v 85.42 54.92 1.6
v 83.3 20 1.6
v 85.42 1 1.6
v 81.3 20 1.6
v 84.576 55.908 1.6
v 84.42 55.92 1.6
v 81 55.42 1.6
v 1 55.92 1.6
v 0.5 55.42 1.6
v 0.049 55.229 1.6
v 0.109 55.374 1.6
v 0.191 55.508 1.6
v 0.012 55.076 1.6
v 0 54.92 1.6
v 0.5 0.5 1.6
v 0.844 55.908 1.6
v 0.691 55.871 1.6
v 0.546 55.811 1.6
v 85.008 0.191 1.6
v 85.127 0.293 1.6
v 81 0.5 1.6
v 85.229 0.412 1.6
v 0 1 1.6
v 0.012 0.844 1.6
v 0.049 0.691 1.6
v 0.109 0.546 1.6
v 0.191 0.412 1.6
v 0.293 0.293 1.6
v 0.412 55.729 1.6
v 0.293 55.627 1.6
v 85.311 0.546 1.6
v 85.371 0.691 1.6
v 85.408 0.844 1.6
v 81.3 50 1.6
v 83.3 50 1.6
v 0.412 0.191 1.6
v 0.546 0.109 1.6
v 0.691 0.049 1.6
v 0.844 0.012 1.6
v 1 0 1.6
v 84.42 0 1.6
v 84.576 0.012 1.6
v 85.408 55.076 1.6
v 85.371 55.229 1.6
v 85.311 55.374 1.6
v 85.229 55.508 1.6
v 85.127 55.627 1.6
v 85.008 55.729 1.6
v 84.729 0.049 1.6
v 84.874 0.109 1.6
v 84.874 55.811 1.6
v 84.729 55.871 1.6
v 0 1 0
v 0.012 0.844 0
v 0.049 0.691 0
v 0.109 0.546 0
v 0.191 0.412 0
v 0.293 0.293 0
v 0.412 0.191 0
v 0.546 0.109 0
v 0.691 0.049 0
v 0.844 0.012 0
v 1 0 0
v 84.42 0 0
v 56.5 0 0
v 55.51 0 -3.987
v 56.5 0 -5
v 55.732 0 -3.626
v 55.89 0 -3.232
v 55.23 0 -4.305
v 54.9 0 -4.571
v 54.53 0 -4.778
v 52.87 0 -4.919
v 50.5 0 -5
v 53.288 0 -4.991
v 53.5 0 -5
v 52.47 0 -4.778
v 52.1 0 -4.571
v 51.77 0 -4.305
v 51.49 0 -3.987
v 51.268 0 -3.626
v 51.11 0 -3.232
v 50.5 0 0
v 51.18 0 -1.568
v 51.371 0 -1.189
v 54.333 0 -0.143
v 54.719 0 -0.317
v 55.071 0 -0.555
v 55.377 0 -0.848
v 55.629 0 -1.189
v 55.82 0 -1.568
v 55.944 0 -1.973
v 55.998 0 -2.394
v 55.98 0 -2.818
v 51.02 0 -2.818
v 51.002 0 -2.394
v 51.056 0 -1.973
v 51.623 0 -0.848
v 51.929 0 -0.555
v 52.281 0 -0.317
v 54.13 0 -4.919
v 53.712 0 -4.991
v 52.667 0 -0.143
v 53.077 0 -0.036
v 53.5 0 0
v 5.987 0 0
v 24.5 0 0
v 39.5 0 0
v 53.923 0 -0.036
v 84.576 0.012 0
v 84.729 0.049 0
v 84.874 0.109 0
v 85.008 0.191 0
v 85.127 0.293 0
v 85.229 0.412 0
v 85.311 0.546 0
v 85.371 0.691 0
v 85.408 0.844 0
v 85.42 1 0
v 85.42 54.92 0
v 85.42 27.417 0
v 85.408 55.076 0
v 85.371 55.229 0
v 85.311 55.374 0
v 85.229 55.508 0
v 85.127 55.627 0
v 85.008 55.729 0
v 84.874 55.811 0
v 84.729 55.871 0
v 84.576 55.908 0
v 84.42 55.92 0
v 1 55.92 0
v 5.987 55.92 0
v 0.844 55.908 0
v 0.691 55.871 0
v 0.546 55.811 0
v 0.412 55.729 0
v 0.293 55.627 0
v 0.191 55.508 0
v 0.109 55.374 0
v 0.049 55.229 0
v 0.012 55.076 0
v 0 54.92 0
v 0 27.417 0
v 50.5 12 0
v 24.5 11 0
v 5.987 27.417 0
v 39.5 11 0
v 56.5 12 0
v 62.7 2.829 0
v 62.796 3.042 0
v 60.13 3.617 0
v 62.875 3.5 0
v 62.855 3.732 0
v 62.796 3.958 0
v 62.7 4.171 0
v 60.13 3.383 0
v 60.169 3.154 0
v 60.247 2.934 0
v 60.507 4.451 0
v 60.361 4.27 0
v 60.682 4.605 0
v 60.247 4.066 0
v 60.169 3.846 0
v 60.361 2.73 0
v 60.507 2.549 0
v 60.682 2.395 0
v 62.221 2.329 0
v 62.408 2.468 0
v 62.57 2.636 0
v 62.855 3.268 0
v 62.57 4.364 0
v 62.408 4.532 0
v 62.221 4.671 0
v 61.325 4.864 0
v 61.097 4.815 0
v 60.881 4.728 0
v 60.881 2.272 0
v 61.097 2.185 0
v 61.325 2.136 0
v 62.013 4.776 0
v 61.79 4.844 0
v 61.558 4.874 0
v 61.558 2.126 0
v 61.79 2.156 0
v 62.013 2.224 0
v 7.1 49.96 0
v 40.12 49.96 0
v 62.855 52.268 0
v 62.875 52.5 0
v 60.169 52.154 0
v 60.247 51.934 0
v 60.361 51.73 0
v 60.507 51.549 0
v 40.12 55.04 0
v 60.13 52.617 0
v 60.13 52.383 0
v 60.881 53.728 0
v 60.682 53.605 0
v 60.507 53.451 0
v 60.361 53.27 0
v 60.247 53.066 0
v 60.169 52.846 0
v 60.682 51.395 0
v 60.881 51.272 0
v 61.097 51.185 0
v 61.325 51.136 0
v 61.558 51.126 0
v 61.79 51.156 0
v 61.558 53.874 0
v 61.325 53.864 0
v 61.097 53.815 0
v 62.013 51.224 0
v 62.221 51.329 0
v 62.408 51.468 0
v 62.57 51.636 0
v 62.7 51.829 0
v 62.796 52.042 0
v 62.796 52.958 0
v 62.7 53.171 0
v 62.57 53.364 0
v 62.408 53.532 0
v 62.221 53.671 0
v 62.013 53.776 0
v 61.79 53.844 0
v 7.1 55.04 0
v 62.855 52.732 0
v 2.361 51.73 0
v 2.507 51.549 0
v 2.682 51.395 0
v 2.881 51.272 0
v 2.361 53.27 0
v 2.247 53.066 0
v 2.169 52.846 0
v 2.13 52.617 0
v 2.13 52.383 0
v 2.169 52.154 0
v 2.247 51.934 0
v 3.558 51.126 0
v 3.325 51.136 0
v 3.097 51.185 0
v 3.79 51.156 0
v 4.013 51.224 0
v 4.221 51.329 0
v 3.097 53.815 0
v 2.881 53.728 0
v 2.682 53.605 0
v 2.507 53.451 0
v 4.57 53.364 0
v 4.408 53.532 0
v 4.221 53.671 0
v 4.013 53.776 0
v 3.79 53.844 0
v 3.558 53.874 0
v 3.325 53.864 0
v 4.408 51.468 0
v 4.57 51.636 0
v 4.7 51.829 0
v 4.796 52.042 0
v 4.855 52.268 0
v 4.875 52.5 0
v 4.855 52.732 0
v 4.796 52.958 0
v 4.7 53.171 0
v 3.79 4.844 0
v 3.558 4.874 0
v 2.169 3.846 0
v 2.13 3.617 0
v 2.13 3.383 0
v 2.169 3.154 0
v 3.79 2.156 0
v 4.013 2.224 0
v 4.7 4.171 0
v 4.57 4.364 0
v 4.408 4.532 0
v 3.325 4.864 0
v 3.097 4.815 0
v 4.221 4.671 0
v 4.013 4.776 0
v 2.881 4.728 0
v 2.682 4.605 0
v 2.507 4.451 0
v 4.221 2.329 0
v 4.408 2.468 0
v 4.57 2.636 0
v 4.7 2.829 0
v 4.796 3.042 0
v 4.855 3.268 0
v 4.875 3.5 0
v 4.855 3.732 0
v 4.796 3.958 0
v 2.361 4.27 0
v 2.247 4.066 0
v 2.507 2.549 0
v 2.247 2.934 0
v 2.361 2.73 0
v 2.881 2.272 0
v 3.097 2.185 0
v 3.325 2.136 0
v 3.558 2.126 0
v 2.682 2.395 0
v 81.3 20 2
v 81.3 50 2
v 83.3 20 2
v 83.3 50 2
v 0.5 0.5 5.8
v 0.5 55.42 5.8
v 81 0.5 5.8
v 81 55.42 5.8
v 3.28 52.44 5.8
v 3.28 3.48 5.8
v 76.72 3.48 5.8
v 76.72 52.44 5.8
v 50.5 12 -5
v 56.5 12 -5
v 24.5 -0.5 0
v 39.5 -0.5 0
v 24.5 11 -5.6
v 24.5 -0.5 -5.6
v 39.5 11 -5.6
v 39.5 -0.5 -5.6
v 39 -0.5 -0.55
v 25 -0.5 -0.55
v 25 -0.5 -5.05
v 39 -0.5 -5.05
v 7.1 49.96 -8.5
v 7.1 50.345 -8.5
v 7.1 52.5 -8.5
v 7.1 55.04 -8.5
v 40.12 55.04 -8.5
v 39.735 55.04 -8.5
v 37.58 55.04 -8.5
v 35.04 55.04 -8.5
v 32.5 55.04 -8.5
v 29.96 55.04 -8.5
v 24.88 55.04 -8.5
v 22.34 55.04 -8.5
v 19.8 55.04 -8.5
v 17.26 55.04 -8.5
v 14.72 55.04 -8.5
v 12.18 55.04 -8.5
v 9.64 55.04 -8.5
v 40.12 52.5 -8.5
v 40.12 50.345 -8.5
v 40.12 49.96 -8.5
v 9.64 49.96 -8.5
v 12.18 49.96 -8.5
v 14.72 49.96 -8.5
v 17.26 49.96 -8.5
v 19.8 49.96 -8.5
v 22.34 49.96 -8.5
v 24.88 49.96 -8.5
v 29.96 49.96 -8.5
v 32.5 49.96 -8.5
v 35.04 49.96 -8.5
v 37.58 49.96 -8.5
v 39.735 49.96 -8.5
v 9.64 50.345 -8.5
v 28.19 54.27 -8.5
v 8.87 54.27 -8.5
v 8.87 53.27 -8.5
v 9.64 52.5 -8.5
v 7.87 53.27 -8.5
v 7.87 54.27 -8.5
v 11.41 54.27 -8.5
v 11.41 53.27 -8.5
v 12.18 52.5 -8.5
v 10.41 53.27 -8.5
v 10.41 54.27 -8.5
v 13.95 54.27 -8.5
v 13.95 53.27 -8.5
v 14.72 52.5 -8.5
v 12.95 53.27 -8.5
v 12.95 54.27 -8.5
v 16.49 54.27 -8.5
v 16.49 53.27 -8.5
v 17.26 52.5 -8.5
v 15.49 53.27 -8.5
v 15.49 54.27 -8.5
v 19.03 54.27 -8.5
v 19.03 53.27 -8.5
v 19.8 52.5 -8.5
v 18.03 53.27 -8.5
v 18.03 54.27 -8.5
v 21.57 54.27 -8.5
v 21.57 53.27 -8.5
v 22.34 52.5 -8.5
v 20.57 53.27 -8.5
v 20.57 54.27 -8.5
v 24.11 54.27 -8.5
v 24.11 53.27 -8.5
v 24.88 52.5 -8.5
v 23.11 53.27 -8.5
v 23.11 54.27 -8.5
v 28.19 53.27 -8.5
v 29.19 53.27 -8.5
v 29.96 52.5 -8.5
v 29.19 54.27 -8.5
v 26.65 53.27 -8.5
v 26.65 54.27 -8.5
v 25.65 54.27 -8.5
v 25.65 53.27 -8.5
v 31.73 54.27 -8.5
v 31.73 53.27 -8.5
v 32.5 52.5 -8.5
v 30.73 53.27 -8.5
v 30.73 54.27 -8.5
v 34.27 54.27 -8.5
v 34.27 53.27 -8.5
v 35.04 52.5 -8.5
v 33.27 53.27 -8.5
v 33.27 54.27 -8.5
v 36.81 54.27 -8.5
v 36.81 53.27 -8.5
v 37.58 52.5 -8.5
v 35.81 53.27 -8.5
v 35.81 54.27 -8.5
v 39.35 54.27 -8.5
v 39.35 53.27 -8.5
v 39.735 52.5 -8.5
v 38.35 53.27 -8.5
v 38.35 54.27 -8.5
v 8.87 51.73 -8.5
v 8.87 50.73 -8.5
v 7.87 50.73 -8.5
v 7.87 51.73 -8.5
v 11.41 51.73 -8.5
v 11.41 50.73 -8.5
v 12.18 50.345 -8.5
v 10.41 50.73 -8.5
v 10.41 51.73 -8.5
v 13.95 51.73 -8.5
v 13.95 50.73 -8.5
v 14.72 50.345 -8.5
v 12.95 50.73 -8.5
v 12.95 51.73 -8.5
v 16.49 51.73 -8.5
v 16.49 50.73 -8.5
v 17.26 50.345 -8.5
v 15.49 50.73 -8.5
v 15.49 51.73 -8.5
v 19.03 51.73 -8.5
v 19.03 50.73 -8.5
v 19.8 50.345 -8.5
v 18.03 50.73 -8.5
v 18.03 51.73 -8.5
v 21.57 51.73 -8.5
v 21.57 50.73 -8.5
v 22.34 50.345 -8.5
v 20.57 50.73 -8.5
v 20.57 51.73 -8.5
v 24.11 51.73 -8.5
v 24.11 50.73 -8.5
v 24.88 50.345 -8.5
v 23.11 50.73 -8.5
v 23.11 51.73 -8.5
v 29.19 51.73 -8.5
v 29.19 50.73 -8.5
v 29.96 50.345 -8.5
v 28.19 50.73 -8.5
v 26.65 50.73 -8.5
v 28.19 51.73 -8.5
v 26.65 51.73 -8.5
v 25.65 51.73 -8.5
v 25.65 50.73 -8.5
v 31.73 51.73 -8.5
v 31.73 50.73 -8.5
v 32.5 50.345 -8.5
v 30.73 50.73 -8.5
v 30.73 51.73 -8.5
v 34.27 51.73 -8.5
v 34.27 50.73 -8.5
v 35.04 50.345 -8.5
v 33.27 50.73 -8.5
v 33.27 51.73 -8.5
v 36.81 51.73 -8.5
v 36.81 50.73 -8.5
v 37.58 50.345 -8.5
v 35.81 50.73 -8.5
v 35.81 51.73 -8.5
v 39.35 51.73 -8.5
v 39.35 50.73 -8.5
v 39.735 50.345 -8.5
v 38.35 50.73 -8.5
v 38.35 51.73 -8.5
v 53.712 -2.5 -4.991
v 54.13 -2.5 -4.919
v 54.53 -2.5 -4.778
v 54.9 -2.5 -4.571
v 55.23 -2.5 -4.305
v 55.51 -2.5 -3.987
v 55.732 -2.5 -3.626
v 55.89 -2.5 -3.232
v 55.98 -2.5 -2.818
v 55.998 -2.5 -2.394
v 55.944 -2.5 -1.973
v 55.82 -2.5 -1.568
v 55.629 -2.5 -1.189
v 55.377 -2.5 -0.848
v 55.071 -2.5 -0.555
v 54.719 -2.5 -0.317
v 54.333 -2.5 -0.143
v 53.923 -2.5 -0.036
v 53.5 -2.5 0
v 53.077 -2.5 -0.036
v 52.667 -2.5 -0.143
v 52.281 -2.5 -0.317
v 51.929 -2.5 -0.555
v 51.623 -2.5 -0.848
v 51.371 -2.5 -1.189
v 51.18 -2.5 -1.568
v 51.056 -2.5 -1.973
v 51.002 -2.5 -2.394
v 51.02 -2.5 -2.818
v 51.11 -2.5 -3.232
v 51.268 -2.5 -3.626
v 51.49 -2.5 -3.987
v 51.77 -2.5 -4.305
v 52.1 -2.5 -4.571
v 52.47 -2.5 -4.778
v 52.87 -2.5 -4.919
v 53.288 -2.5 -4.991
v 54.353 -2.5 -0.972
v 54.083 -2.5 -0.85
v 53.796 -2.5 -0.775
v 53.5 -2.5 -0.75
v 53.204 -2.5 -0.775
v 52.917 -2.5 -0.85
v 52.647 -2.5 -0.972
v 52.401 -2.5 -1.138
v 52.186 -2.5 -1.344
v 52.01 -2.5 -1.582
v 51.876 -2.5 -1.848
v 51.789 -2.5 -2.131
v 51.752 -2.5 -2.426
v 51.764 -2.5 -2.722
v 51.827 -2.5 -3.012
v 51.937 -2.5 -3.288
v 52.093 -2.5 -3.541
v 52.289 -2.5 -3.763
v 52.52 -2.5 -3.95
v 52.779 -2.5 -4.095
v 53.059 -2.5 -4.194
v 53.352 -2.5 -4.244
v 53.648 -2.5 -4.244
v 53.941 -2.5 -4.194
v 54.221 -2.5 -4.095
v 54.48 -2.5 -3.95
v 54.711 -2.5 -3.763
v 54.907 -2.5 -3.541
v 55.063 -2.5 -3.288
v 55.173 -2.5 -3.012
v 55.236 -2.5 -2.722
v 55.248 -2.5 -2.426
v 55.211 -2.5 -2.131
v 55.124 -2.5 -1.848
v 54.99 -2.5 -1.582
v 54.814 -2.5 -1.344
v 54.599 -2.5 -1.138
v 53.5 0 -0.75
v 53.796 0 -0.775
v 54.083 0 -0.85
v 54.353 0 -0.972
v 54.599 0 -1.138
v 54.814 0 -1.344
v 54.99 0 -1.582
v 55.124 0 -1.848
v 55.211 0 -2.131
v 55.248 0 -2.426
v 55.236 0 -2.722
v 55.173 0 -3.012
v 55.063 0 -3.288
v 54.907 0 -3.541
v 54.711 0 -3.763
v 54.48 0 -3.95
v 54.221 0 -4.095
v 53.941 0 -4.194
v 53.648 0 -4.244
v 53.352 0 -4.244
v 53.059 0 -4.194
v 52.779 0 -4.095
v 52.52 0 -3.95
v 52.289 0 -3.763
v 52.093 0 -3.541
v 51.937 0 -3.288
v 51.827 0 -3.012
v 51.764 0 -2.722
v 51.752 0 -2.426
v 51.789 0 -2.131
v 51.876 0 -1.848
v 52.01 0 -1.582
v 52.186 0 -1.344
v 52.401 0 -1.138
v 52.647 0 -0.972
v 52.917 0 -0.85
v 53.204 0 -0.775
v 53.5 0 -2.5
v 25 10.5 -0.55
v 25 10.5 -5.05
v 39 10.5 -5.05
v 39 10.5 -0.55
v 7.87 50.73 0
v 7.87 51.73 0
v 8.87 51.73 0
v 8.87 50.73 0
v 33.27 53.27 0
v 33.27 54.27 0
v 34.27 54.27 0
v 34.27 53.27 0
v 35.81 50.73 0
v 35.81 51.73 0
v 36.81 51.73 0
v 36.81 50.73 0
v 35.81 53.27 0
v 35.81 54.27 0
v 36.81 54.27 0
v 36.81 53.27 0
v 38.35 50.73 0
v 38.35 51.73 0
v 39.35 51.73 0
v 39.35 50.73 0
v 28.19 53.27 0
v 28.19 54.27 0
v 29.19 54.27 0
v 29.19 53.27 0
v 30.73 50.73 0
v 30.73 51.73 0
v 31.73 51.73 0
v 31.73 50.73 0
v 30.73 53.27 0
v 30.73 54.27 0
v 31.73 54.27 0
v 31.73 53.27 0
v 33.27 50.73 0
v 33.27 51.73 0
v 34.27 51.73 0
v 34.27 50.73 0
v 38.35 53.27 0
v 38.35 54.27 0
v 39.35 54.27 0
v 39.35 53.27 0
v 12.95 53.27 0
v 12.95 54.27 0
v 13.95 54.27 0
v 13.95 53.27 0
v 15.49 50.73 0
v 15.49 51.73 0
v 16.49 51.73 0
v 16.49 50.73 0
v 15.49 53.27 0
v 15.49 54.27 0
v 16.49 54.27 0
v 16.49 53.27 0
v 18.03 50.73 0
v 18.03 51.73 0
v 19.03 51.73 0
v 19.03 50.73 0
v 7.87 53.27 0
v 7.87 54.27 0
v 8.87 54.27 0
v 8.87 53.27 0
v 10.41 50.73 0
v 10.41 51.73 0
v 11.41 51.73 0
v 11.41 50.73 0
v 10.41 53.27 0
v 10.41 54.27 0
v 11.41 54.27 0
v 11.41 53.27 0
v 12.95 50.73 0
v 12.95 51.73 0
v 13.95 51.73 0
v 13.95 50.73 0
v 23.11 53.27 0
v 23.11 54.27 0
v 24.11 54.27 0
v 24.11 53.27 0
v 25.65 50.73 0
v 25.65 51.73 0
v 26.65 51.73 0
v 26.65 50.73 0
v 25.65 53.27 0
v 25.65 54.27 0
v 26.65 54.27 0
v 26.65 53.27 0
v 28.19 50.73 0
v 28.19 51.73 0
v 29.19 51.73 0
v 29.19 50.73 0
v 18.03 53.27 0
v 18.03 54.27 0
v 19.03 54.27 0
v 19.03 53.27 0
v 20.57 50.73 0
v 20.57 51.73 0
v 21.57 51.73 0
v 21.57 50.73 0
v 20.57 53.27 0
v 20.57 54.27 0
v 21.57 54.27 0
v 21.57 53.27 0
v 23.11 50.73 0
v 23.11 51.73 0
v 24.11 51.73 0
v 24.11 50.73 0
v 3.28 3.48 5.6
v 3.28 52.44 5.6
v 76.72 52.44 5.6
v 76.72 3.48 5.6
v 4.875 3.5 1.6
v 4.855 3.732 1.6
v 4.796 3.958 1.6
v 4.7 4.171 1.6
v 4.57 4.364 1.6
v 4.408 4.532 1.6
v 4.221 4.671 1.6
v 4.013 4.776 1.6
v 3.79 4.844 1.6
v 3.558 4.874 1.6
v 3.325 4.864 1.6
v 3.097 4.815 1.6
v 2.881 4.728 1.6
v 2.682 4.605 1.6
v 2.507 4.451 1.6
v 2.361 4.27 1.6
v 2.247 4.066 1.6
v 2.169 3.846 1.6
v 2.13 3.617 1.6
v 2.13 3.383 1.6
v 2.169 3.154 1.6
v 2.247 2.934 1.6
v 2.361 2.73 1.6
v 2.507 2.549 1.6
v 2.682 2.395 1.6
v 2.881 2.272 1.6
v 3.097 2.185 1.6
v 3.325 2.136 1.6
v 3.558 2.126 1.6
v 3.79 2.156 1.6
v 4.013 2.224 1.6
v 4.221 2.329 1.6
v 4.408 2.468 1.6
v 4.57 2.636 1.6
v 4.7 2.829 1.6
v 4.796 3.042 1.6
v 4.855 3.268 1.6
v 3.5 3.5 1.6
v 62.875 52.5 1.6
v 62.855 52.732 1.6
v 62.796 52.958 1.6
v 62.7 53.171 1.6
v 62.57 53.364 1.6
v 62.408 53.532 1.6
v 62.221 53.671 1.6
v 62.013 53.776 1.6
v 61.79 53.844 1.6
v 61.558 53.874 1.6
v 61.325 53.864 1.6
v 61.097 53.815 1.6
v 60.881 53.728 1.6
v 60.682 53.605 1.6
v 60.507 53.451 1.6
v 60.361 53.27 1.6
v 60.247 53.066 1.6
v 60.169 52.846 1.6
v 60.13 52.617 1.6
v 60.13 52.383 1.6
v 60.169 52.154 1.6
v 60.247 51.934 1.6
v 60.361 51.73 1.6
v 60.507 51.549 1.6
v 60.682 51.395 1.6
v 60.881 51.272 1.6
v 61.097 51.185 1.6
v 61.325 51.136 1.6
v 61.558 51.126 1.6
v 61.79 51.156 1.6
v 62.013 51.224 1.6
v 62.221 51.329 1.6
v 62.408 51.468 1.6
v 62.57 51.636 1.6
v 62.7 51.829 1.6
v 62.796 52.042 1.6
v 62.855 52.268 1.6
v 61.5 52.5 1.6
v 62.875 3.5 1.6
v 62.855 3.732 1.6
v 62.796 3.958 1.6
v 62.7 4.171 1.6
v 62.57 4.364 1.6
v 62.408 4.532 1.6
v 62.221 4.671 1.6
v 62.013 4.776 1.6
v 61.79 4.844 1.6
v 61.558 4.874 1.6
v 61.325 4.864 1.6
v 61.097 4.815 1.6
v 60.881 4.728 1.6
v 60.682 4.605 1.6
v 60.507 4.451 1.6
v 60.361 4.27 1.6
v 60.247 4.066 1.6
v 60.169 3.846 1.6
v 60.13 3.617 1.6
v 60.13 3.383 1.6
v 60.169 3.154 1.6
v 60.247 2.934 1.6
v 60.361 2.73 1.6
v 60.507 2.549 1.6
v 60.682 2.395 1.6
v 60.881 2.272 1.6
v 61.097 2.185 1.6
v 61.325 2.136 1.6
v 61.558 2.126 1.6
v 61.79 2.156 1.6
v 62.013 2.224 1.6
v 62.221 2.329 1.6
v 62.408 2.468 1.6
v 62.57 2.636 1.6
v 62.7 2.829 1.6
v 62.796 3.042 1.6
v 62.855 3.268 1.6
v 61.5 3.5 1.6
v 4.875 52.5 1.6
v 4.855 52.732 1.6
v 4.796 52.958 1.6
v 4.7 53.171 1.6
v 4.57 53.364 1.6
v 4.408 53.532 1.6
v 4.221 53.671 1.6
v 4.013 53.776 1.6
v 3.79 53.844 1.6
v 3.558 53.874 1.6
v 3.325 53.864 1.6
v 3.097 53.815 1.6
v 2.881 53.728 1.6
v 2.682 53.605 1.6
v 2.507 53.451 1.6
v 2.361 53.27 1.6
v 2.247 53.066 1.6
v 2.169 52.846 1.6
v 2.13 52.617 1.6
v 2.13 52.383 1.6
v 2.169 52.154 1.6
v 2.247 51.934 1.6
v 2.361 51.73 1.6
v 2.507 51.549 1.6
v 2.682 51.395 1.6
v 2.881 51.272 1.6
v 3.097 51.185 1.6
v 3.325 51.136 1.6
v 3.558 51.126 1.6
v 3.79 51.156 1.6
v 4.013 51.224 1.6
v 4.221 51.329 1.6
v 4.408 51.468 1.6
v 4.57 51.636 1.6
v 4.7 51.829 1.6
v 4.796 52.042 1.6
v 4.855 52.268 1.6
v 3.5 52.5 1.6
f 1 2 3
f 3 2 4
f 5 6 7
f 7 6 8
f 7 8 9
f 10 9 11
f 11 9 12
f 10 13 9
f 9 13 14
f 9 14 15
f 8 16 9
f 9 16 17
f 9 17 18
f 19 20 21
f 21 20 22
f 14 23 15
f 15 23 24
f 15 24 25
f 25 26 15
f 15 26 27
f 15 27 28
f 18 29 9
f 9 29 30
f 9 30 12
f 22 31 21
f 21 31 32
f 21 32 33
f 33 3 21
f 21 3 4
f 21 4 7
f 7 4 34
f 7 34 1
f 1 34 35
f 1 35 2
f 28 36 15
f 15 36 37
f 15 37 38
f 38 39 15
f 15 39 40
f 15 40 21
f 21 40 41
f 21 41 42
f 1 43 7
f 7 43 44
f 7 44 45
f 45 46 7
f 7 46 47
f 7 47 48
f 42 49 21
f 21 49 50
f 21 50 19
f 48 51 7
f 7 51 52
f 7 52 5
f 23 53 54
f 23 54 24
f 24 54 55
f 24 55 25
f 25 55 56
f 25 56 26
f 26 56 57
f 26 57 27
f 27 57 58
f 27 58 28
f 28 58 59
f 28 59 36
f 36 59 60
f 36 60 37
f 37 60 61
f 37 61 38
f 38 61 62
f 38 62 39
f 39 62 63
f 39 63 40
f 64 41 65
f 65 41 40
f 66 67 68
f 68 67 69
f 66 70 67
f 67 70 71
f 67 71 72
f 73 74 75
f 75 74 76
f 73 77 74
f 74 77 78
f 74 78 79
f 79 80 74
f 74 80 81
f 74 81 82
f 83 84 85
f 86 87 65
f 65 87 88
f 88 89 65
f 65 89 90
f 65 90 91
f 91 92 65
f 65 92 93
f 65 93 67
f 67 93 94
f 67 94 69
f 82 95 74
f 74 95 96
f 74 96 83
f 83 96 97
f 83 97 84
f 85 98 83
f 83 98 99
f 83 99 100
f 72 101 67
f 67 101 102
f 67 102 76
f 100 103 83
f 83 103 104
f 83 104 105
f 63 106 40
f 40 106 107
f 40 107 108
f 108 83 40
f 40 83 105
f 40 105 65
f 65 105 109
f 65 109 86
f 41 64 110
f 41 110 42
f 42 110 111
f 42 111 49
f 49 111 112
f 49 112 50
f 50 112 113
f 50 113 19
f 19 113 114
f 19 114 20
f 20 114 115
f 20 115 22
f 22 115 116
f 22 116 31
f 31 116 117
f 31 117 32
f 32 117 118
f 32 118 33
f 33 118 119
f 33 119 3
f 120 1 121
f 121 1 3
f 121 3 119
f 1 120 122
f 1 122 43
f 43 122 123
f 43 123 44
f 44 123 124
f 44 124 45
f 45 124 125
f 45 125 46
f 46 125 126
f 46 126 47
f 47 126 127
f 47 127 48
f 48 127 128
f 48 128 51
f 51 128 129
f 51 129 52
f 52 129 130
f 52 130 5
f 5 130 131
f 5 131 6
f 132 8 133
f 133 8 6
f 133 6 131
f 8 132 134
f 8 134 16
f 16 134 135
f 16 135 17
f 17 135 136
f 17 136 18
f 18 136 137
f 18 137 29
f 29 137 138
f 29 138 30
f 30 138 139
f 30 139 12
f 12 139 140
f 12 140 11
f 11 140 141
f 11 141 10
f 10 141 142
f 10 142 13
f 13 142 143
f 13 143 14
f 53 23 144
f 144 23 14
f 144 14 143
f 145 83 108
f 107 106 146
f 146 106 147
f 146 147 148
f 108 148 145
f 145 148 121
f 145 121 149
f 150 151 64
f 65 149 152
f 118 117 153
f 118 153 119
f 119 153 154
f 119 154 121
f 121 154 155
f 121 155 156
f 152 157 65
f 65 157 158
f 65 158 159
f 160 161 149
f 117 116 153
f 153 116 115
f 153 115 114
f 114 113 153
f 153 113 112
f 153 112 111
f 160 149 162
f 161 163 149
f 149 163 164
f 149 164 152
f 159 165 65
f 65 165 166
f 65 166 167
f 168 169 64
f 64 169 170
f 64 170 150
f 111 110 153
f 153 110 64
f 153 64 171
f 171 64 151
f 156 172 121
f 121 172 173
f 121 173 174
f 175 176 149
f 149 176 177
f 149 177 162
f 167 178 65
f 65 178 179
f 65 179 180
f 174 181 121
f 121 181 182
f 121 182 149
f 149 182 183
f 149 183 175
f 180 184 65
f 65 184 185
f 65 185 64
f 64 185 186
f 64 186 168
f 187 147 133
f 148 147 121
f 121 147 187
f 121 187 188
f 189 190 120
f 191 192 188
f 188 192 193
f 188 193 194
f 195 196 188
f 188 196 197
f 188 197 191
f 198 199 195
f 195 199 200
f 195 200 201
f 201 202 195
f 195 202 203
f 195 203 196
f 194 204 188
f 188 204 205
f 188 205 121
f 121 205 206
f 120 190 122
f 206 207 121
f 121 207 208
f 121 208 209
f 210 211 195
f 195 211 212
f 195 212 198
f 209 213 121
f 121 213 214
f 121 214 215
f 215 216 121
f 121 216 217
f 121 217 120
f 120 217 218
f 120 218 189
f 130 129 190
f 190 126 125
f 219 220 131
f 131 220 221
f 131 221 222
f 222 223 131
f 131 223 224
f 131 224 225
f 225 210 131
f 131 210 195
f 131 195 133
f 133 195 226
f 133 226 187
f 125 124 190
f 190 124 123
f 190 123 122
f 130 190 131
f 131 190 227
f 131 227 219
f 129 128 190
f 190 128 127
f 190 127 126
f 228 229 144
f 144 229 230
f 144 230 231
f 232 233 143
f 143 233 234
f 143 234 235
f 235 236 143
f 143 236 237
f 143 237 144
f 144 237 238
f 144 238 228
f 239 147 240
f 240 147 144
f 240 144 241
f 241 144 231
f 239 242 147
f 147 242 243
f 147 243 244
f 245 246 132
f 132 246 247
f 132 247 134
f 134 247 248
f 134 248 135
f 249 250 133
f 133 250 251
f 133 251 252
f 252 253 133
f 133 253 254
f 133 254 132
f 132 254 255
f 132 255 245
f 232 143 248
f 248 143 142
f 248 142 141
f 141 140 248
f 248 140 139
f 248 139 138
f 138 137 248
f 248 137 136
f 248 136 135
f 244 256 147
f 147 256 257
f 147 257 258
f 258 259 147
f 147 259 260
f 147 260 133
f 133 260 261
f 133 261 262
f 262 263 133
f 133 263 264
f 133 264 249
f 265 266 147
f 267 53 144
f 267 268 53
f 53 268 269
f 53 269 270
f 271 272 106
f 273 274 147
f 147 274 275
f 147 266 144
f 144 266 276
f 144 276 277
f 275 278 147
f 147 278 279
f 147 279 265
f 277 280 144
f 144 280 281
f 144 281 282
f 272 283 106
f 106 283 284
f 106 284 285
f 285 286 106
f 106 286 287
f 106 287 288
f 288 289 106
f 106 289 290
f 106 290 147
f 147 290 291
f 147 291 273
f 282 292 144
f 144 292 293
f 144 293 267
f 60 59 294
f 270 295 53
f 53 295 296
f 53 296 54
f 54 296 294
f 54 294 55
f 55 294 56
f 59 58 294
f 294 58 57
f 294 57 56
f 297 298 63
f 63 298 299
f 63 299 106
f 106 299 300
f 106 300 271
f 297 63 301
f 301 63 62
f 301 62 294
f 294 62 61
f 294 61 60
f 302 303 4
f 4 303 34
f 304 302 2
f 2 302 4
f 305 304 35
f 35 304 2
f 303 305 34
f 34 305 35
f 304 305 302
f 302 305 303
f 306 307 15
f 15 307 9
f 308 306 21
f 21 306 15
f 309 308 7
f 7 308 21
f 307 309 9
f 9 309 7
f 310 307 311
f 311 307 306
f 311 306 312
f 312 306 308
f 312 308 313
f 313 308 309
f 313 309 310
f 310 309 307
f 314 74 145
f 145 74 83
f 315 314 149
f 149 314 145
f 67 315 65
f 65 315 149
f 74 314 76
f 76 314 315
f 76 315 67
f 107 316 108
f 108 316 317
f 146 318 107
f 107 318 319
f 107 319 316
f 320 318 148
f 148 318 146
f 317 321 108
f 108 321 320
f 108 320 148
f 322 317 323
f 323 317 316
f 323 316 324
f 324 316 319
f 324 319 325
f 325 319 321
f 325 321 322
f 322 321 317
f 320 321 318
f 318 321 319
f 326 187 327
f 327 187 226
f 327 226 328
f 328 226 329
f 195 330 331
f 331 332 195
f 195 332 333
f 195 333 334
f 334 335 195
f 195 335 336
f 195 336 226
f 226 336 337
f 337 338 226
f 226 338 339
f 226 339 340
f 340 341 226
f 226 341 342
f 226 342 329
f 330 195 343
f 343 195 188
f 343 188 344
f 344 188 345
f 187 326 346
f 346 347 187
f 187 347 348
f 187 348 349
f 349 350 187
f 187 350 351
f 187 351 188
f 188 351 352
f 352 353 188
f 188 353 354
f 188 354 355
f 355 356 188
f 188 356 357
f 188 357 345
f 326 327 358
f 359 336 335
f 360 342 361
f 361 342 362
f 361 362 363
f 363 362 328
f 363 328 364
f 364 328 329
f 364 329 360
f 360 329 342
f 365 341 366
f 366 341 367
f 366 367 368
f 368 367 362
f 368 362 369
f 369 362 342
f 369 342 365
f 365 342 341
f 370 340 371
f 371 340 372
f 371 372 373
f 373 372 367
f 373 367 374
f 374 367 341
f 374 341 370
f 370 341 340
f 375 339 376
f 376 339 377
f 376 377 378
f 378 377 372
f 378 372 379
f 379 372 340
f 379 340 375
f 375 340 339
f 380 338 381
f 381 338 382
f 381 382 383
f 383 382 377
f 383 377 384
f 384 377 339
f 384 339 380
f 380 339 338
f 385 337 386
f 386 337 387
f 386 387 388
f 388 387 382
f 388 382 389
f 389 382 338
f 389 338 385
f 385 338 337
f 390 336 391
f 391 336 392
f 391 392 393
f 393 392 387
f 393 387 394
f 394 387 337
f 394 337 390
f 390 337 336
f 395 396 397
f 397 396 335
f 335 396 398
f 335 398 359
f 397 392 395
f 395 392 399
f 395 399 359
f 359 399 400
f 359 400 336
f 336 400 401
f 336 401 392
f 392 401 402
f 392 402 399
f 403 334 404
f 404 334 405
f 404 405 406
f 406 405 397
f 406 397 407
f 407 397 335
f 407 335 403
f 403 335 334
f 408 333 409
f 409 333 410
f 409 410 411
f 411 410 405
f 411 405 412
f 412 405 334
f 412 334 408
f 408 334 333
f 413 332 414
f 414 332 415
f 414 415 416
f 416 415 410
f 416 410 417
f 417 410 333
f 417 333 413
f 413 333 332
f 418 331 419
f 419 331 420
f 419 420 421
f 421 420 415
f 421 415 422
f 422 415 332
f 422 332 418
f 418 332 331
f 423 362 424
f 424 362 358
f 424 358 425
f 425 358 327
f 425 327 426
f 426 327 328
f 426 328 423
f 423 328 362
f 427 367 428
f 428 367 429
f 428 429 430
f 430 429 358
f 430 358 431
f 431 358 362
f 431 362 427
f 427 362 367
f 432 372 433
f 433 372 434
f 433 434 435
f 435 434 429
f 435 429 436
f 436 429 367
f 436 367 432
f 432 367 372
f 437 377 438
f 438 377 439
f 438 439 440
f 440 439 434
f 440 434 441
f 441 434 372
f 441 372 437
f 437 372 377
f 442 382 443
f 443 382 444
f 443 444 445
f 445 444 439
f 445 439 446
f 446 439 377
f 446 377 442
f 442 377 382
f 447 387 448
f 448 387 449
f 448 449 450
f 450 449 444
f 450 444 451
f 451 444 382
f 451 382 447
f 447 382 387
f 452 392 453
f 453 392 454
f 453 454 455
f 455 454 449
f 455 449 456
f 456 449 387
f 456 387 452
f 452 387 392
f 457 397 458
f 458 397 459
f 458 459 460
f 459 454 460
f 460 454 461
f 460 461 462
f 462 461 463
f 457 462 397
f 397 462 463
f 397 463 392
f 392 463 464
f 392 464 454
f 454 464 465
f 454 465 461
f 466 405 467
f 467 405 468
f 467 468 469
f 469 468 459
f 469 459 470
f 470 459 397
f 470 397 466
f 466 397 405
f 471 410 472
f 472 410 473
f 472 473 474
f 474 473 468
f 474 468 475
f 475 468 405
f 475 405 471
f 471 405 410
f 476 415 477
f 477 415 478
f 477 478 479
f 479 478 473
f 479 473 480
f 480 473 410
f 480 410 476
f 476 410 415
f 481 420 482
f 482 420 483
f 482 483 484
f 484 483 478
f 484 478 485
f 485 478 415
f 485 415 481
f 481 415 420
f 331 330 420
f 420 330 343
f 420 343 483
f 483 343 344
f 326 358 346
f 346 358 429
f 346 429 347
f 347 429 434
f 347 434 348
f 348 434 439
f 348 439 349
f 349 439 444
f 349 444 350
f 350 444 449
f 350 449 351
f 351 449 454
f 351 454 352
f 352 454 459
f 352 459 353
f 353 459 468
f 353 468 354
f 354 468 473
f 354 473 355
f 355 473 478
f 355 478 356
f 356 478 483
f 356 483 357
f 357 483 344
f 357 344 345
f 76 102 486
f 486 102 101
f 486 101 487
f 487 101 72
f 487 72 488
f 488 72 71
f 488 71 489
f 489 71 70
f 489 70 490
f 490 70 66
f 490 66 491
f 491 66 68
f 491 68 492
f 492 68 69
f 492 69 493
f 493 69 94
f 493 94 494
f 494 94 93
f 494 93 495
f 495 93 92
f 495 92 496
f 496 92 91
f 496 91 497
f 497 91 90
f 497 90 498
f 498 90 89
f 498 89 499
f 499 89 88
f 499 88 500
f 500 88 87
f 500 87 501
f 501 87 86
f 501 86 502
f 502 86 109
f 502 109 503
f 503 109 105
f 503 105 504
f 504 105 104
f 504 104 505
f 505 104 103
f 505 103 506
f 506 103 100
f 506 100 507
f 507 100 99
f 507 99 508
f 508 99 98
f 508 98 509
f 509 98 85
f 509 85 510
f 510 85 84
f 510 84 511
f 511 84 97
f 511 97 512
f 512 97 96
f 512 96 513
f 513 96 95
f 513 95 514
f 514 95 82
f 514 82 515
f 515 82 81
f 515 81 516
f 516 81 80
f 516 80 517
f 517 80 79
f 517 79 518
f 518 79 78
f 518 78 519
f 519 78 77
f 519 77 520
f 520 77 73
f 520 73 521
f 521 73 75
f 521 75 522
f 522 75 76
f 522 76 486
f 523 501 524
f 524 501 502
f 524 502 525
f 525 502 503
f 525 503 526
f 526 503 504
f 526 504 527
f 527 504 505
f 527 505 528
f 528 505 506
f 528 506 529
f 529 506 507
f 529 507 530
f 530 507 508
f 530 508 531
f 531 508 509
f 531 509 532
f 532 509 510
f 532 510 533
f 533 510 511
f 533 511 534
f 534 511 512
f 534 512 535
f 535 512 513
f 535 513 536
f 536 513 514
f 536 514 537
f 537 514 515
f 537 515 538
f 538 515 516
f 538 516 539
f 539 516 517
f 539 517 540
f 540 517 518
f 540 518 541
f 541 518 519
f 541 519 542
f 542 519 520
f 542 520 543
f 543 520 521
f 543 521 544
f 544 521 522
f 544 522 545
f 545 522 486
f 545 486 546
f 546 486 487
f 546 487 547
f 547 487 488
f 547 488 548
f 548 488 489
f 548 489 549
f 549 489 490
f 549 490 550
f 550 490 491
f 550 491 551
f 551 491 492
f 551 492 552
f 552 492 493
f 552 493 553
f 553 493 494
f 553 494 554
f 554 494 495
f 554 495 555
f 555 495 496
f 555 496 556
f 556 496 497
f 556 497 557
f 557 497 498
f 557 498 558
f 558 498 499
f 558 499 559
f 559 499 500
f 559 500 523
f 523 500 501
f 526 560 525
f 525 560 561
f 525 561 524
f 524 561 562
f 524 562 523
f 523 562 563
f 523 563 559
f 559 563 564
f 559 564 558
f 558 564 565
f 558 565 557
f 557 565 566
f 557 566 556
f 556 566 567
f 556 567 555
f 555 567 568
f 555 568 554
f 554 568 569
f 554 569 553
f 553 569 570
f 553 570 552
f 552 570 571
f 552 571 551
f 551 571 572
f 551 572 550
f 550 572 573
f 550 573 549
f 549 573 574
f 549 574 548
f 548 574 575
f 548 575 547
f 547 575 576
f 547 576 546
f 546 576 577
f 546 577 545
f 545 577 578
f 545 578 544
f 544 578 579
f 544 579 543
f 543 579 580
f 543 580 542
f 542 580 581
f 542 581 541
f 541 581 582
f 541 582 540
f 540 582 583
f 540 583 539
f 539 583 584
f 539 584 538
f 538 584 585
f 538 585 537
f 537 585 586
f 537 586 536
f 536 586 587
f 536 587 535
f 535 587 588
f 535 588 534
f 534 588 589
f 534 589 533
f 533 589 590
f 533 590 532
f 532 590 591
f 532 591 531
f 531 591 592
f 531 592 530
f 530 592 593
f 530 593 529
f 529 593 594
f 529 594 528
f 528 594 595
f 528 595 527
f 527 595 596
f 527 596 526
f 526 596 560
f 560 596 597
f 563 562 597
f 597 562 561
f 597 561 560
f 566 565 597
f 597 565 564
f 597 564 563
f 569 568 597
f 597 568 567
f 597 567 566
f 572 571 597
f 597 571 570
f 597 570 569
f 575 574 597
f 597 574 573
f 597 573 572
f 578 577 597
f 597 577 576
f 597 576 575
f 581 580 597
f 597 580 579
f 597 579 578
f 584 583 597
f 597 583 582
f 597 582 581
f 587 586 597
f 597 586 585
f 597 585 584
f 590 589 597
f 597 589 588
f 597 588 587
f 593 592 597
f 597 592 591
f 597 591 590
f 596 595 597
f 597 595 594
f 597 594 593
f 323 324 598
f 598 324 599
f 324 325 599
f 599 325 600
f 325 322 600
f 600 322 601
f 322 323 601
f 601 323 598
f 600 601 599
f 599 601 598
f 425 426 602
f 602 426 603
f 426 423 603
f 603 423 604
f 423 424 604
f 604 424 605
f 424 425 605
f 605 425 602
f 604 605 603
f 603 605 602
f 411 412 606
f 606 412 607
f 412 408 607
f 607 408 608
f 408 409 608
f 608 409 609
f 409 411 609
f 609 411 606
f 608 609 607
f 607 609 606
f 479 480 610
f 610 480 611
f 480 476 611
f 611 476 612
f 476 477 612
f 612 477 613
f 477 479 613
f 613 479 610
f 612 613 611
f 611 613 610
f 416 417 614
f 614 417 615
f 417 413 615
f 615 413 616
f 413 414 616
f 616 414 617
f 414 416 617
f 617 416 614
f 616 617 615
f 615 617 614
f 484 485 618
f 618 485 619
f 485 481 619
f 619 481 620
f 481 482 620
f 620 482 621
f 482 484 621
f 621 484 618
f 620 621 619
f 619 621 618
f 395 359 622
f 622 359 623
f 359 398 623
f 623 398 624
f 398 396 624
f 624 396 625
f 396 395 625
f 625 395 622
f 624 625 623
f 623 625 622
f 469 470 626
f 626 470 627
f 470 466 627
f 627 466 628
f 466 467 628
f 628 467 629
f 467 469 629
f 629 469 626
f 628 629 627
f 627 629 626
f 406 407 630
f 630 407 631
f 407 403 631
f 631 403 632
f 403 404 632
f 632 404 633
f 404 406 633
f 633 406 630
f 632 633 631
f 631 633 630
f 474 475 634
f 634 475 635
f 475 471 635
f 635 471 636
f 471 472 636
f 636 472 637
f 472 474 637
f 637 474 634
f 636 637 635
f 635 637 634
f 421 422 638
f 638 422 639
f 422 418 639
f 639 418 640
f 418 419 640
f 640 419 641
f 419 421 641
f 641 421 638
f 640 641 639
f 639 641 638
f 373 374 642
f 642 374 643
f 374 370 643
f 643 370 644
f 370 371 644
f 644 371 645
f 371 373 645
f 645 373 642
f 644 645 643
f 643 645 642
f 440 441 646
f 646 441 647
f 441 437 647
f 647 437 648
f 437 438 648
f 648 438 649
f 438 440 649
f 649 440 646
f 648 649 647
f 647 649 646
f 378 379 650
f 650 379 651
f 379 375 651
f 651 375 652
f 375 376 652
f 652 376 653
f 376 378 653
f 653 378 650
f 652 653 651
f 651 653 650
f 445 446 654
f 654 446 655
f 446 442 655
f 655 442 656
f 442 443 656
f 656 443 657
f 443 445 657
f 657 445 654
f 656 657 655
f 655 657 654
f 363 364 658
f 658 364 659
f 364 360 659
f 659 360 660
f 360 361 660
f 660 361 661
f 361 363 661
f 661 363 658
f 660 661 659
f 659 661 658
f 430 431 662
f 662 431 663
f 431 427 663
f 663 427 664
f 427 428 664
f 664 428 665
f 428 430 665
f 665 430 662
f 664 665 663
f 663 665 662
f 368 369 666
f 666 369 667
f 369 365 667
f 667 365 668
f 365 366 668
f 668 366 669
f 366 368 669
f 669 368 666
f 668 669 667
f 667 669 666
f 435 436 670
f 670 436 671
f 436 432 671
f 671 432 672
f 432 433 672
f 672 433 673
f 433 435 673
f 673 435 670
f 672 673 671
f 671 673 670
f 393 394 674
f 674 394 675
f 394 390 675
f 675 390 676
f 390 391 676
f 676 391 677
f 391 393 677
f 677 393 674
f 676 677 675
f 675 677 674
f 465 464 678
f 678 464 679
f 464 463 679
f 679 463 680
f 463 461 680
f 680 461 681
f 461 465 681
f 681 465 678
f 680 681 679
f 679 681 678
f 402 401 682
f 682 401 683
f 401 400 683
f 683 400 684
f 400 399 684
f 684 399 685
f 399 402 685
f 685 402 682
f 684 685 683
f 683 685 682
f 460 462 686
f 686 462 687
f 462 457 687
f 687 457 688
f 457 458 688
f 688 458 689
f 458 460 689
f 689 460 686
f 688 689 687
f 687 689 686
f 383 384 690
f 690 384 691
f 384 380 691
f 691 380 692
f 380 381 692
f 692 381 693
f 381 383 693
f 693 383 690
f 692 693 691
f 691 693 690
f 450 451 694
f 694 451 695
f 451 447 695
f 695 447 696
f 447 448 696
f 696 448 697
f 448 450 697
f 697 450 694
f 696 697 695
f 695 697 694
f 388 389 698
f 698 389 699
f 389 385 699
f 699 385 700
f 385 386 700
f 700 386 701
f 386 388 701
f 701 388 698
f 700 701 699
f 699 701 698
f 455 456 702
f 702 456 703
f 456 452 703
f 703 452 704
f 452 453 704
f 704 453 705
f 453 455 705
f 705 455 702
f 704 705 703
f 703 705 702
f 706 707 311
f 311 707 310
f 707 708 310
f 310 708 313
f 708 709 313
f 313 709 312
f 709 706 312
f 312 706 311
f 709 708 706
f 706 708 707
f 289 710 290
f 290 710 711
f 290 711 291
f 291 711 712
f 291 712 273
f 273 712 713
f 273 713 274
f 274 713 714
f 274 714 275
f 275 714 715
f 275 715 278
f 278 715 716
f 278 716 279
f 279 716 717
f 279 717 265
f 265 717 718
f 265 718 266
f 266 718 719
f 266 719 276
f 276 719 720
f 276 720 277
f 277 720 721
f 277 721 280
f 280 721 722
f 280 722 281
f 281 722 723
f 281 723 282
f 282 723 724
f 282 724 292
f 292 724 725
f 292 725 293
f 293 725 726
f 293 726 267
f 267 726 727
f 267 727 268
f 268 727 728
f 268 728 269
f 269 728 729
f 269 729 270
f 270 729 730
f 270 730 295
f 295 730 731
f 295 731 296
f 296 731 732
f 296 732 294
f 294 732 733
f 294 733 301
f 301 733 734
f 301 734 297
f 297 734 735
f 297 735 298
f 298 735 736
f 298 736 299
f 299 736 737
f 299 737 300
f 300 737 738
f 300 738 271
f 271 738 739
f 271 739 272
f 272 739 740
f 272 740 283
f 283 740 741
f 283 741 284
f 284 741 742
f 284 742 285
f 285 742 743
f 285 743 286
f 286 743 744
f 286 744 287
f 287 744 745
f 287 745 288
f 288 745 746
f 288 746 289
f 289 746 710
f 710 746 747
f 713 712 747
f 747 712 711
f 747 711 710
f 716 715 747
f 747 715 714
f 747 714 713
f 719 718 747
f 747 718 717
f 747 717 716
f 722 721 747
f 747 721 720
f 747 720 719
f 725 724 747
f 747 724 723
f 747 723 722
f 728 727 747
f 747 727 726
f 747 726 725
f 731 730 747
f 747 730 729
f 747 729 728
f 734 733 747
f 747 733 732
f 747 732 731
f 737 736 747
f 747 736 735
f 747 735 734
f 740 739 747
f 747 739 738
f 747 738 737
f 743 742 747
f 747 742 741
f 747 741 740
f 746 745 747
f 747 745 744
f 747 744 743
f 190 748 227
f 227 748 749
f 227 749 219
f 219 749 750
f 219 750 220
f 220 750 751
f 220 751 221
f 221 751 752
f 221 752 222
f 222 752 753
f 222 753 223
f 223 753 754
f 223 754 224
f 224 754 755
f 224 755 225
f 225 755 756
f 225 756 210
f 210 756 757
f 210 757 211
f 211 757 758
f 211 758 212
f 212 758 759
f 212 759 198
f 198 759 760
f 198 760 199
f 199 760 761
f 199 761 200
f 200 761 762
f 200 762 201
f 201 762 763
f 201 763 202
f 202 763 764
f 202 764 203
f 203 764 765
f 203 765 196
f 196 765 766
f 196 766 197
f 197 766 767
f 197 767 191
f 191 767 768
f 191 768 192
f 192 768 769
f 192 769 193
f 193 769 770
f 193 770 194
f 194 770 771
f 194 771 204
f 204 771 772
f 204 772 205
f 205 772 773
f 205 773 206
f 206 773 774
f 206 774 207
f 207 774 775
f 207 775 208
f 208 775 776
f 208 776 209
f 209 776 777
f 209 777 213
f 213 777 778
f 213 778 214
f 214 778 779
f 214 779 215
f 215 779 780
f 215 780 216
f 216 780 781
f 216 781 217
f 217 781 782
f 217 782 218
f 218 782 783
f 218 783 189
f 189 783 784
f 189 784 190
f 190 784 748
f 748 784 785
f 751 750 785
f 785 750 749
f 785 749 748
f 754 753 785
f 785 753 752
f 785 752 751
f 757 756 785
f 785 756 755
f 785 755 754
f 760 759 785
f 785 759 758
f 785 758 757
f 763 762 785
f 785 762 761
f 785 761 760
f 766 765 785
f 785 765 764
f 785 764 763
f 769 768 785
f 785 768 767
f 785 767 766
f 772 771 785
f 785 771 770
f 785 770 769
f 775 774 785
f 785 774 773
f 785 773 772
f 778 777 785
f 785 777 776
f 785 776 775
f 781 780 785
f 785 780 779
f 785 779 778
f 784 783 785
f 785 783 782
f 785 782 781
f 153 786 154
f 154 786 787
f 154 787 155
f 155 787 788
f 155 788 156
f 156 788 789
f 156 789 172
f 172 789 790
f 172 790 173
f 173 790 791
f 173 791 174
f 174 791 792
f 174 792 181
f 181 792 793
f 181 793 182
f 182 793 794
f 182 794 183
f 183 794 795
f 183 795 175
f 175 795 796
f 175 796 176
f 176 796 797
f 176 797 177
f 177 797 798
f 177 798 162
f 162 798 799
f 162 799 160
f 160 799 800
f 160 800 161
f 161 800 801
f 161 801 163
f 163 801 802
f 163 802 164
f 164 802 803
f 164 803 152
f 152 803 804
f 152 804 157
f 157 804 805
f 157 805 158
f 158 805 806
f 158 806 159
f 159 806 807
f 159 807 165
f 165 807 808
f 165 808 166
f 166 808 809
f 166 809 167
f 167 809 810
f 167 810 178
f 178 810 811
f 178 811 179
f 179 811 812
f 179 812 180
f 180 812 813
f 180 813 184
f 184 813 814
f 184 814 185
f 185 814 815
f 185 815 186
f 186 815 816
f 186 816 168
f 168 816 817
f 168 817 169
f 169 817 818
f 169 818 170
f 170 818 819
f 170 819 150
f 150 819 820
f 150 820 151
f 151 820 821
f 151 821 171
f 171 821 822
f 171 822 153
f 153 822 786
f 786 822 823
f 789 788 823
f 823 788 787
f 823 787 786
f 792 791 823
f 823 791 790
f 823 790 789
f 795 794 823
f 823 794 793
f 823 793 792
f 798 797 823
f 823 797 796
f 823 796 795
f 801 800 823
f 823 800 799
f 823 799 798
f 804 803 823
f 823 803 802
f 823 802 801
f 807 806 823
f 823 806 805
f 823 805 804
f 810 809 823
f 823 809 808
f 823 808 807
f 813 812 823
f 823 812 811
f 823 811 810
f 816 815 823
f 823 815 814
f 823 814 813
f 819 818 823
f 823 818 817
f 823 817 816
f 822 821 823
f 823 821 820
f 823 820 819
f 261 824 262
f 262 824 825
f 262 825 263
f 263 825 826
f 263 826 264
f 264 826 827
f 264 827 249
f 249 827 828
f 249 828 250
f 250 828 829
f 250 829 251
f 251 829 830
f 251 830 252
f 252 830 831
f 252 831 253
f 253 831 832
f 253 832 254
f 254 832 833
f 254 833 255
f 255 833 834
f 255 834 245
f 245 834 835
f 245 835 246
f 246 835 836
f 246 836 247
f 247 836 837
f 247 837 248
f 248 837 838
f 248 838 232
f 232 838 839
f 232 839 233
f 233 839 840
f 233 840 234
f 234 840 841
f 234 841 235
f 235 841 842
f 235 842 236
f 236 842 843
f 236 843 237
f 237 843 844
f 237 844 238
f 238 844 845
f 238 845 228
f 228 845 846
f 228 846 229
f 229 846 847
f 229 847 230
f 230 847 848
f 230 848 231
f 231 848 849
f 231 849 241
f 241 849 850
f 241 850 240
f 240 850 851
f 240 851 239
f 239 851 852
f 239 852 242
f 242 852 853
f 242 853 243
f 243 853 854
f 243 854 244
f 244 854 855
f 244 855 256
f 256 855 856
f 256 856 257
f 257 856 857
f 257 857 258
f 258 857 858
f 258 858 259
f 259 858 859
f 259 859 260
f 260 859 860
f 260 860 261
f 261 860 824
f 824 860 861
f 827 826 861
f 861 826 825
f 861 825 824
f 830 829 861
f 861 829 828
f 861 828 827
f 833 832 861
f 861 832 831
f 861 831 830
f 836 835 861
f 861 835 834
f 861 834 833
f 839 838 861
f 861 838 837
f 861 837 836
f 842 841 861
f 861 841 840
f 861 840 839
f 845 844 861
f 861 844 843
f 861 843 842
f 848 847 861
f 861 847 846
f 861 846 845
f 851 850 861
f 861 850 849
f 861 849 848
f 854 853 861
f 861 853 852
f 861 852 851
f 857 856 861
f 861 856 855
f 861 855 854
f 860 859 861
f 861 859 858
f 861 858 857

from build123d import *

# Parameters (mm, degrees)
PCB_DEPTH                       = 1.6
SKETCH2_W                       = 2
SKETCH2_H                       = 30
BODY00_DEPTH                    = 0.4
SKETCH3_W                       = 80.5
SKETCH3_H                       = 54.92
BODY01_DEPTH                    = 4.2
SKETCH4_W                       = 6
SKETCH4_H                       = 12
UNDER00_DEPTH                   = 5
SKETCH5_W                       = 15
SKETCH5_H                       = 11.5
UNDER01_DEPTH                   = 5.6
SKETCH6_W                       = 33.02
SKETCH6_H                       = 5.08
UNDER02_DEPTH                   = 8.5
SKETCH7_R                       = 2.5
SIDE0_AUDIO_JACK_NOSE_DEPTH     = 2.5
SKETCH8_R                       = 1.75
SIDEBORE0_AUDIO_JACK_NOSE_DEPTH = 2.5
SKETCH9_W                       = 14
SKETCH9_H                       = 4.5
CUT00_DEPTH                     = 11
SKETCH10_W                      = 1
SKETCH10_H                      = 1
CUT01_DEPTH                     = 8.5
SKETCH11_W                      = 73.44
SKETCH11_H                      = 48.96
CUT02_DEPTH                     = 0.2
SKETCH12_R                      = 1.375
HOLES_DEPTH                     = 1.6


with BuildPart() as part:
    # Sketch1 → PCB (new body)
    with BuildSketch(Plane.XY):
        with BuildLine():
            Line((1, 0), (84.42, 0))
            ThreePointArc((84.42, 0), (85.127106781, 0.292893219), (85.42, 1))
            Line((85.42, 1), (85.42, 54.92))
            ThreePointArc((85.42, 54.92), (85.127106781, 55.627106781), (84.42, 55.92))
            Line((84.42, 55.92), (1, 55.92))
            ThreePointArc((1, 55.92), (0.292893219, 55.627106781), (0, 54.92))
            Line((0, 54.92), (0, 1))
            ThreePointArc((0, 1), (0.292893219, 0.292893219), (1, 0))
        make_face()
    extrude(amount=PCB_DEPTH)

    # Sketch2 → Body00 (add)
    with BuildSketch(Plane.XY.offset(1.6)):
        with Locations((82.3, 35)):
            Rectangle(SKETCH2_W, SKETCH2_H)
    extrude(amount=BODY00_DEPTH)

    # Sketch3 → Body01 (add)
    with BuildSketch(Plane.XY.offset(1.6)):
        with Locations((40.75, 27.96)):
            Rectangle(SKETCH3_W, SKETCH3_H)
    extrude(amount=BODY01_DEPTH)

    # Sketch4 → Under00 (add)
    with BuildSketch(Plane.XY):
        with Locations((53.5, 6)):
            Rectangle(SKETCH4_W, SKETCH4_H)
    extrude(amount=-UNDER00_DEPTH)

    # Sketch5 → Under01 (add)
    with BuildSketch(Plane.XY):
        with Locations((32, 5.25)):
            Rectangle(SKETCH5_W, SKETCH5_H)
    extrude(amount=-UNDER01_DEPTH)

    # Sketch6 → Under02 (add)
    with BuildSketch(Plane.XY):
        with Locations((23.61, 52.5)):
            Rectangle(SKETCH6_W, SKETCH6_H)
    extrude(amount=-UNDER02_DEPTH)

    # Sketch7 → Side0_Audio_jack_nose (add)
    with BuildSketch(Plane(origin=(0, 0, 0), x_dir=(1, 0, 0), z_dir=(0, 1, 0))):
        with Locations(Location((53.5, 2.5, 0), (0, 0, 270))):
            Circle(SKETCH7_R)
    extrude(amount=-SIDE0_AUDIO_JACK_NOSE_DEPTH)

    # Sketch8 → SideBore0_Audio_jack_nose (cut)
    with BuildSketch(Plane(origin=(0, 0, 0), x_dir=(1, 0, 0), z_dir=(0, 1, 0))):
        with Locations(Location((53.5, 2.5, 0), (0, 0, 270))):
            Circle(SKETCH8_R)
    extrude(amount=-SIDEBORE0_AUDIO_JACK_NOSE_DEPTH, mode=Mode.SUBTRACT)

    # Sketch9 → Cut00 (cut)
    with BuildSketch(Plane(origin=(0, 10.5, 0), x_dir=(1, 0, 0), z_dir=(0, 1, 0))):
        with Locations((32, 2.8)):
            Rectangle(SKETCH9_W, SKETCH9_H)
    extrude(amount=-CUT00_DEPTH, mode=Mode.SUBTRACT)

    # Sketch10 → Cut01 (cut)
    with BuildSketch(Plane.XY):
        with Locations((8.37, 51.23)):
            Rectangle(SKETCH10_W, SKETCH10_H)
        with Locations((8.37, 53.77)):
            Rectangle(SKETCH10_W, SKETCH10_H)
        with Locations((10.91, 51.23)):
            Rectangle(SKETCH10_W, SKETCH10_H)
        with Locations((10.91, 53.77)):
            Rectangle(SKETCH10_W, SKETCH10_H)
        with Locations((13.45, 51.23)):
            Rectangle(SKETCH10_W, SKETCH10_H)
        with Locations((13.45, 53.77)):
            Rectangle(SKETCH10_W, SKETCH10_H)
        with Locations((15.99, 51.23)):
            Rectangle(SKETCH10_W, SKETCH10_H)
        with Locations((15.99, 53.77)):
            Rectangle(SKETCH10_W, SKETCH10_H)
        with Locations((18.53, 51.23)):
            Rectangle(SKETCH10_W, SKETCH10_H)
        with Locations((18.53, 53.77)):
            Rectangle(SKETCH10_W, SKETCH10_H)
        with Locations((21.07, 51.23)):
            Rectangle(SKETCH10_W, SKETCH10_H)
        with Locations((21.07, 53.77)):
            Rectangle(SKETCH10_W, SKETCH10_H)
        with Locations((23.61, 51.23)):
            Rectangle(SKETCH10_W, SKETCH10_H)
        with Locations((23.61, 53.77)):
            Rectangle(SKETCH10_W, SKETCH10_H)
        with Locations((26.15, 51.23)):
            Rectangle(SKETCH10_W, SKETCH10_H)
        with Locations((26.15, 53.77)):
            Rectangle(SKETCH10_W, SKETCH10_H)
        with Locations((28.69, 51.23)):
            Rectangle(SKETCH10_W, SKETCH10_H)
        with Locations((28.69, 53.77)):
            Rectangle(SKETCH10_W, SKETCH10_H)
        with Locations((31.23, 51.23)):
            Rectangle(SKETCH10_W, SKETCH10_H)
        with Locations((31.23, 53.77)):
            Rectangle(SKETCH10_W, SKETCH10_H)
        with Locations((33.77, 51.23)):
            Rectangle(SKETCH10_W, SKETCH10_H)
        with Locations((33.77, 53.77)):
            Rectangle(SKETCH10_W, SKETCH10_H)
        with Locations((36.31, 51.23)):
            Rectangle(SKETCH10_W, SKETCH10_H)
        with Locations((36.31, 53.77)):
            Rectangle(SKETCH10_W, SKETCH10_H)
        with Locations((38.85, 51.23)):
            Rectangle(SKETCH10_W, SKETCH10_H)
        with Locations((38.85, 53.77)):
            Rectangle(SKETCH10_W, SKETCH10_H)
    extrude(amount=-CUT01_DEPTH, mode=Mode.SUBTRACT)

    # Sketch11 → Cut02 (cut)
    with BuildSketch(Plane.XY.offset(5.8)):
        with Locations((40, 27.96)):
            Rectangle(SKETCH11_W, SKETCH11_H)
    extrude(amount=-CUT02_DEPTH, mode=Mode.SUBTRACT)

    # Sketch12 → Holes (cut)
    with BuildSketch(Plane.XY.offset(1.6)):
        with Locations((3.5, 3.5)):
            Circle(SKETCH12_R)
        with Locations((3.5, 52.5)):
            Circle(SKETCH12_R)
        with Locations((61.5, 3.5)):
            Circle(SKETCH12_R)
        with Locations((61.5, 52.5)):
            Circle(SKETCH12_R)
    extrude(amount=-HOLES_DEPTH, mode=Mode.SUBTRACT)


solid = part.part
